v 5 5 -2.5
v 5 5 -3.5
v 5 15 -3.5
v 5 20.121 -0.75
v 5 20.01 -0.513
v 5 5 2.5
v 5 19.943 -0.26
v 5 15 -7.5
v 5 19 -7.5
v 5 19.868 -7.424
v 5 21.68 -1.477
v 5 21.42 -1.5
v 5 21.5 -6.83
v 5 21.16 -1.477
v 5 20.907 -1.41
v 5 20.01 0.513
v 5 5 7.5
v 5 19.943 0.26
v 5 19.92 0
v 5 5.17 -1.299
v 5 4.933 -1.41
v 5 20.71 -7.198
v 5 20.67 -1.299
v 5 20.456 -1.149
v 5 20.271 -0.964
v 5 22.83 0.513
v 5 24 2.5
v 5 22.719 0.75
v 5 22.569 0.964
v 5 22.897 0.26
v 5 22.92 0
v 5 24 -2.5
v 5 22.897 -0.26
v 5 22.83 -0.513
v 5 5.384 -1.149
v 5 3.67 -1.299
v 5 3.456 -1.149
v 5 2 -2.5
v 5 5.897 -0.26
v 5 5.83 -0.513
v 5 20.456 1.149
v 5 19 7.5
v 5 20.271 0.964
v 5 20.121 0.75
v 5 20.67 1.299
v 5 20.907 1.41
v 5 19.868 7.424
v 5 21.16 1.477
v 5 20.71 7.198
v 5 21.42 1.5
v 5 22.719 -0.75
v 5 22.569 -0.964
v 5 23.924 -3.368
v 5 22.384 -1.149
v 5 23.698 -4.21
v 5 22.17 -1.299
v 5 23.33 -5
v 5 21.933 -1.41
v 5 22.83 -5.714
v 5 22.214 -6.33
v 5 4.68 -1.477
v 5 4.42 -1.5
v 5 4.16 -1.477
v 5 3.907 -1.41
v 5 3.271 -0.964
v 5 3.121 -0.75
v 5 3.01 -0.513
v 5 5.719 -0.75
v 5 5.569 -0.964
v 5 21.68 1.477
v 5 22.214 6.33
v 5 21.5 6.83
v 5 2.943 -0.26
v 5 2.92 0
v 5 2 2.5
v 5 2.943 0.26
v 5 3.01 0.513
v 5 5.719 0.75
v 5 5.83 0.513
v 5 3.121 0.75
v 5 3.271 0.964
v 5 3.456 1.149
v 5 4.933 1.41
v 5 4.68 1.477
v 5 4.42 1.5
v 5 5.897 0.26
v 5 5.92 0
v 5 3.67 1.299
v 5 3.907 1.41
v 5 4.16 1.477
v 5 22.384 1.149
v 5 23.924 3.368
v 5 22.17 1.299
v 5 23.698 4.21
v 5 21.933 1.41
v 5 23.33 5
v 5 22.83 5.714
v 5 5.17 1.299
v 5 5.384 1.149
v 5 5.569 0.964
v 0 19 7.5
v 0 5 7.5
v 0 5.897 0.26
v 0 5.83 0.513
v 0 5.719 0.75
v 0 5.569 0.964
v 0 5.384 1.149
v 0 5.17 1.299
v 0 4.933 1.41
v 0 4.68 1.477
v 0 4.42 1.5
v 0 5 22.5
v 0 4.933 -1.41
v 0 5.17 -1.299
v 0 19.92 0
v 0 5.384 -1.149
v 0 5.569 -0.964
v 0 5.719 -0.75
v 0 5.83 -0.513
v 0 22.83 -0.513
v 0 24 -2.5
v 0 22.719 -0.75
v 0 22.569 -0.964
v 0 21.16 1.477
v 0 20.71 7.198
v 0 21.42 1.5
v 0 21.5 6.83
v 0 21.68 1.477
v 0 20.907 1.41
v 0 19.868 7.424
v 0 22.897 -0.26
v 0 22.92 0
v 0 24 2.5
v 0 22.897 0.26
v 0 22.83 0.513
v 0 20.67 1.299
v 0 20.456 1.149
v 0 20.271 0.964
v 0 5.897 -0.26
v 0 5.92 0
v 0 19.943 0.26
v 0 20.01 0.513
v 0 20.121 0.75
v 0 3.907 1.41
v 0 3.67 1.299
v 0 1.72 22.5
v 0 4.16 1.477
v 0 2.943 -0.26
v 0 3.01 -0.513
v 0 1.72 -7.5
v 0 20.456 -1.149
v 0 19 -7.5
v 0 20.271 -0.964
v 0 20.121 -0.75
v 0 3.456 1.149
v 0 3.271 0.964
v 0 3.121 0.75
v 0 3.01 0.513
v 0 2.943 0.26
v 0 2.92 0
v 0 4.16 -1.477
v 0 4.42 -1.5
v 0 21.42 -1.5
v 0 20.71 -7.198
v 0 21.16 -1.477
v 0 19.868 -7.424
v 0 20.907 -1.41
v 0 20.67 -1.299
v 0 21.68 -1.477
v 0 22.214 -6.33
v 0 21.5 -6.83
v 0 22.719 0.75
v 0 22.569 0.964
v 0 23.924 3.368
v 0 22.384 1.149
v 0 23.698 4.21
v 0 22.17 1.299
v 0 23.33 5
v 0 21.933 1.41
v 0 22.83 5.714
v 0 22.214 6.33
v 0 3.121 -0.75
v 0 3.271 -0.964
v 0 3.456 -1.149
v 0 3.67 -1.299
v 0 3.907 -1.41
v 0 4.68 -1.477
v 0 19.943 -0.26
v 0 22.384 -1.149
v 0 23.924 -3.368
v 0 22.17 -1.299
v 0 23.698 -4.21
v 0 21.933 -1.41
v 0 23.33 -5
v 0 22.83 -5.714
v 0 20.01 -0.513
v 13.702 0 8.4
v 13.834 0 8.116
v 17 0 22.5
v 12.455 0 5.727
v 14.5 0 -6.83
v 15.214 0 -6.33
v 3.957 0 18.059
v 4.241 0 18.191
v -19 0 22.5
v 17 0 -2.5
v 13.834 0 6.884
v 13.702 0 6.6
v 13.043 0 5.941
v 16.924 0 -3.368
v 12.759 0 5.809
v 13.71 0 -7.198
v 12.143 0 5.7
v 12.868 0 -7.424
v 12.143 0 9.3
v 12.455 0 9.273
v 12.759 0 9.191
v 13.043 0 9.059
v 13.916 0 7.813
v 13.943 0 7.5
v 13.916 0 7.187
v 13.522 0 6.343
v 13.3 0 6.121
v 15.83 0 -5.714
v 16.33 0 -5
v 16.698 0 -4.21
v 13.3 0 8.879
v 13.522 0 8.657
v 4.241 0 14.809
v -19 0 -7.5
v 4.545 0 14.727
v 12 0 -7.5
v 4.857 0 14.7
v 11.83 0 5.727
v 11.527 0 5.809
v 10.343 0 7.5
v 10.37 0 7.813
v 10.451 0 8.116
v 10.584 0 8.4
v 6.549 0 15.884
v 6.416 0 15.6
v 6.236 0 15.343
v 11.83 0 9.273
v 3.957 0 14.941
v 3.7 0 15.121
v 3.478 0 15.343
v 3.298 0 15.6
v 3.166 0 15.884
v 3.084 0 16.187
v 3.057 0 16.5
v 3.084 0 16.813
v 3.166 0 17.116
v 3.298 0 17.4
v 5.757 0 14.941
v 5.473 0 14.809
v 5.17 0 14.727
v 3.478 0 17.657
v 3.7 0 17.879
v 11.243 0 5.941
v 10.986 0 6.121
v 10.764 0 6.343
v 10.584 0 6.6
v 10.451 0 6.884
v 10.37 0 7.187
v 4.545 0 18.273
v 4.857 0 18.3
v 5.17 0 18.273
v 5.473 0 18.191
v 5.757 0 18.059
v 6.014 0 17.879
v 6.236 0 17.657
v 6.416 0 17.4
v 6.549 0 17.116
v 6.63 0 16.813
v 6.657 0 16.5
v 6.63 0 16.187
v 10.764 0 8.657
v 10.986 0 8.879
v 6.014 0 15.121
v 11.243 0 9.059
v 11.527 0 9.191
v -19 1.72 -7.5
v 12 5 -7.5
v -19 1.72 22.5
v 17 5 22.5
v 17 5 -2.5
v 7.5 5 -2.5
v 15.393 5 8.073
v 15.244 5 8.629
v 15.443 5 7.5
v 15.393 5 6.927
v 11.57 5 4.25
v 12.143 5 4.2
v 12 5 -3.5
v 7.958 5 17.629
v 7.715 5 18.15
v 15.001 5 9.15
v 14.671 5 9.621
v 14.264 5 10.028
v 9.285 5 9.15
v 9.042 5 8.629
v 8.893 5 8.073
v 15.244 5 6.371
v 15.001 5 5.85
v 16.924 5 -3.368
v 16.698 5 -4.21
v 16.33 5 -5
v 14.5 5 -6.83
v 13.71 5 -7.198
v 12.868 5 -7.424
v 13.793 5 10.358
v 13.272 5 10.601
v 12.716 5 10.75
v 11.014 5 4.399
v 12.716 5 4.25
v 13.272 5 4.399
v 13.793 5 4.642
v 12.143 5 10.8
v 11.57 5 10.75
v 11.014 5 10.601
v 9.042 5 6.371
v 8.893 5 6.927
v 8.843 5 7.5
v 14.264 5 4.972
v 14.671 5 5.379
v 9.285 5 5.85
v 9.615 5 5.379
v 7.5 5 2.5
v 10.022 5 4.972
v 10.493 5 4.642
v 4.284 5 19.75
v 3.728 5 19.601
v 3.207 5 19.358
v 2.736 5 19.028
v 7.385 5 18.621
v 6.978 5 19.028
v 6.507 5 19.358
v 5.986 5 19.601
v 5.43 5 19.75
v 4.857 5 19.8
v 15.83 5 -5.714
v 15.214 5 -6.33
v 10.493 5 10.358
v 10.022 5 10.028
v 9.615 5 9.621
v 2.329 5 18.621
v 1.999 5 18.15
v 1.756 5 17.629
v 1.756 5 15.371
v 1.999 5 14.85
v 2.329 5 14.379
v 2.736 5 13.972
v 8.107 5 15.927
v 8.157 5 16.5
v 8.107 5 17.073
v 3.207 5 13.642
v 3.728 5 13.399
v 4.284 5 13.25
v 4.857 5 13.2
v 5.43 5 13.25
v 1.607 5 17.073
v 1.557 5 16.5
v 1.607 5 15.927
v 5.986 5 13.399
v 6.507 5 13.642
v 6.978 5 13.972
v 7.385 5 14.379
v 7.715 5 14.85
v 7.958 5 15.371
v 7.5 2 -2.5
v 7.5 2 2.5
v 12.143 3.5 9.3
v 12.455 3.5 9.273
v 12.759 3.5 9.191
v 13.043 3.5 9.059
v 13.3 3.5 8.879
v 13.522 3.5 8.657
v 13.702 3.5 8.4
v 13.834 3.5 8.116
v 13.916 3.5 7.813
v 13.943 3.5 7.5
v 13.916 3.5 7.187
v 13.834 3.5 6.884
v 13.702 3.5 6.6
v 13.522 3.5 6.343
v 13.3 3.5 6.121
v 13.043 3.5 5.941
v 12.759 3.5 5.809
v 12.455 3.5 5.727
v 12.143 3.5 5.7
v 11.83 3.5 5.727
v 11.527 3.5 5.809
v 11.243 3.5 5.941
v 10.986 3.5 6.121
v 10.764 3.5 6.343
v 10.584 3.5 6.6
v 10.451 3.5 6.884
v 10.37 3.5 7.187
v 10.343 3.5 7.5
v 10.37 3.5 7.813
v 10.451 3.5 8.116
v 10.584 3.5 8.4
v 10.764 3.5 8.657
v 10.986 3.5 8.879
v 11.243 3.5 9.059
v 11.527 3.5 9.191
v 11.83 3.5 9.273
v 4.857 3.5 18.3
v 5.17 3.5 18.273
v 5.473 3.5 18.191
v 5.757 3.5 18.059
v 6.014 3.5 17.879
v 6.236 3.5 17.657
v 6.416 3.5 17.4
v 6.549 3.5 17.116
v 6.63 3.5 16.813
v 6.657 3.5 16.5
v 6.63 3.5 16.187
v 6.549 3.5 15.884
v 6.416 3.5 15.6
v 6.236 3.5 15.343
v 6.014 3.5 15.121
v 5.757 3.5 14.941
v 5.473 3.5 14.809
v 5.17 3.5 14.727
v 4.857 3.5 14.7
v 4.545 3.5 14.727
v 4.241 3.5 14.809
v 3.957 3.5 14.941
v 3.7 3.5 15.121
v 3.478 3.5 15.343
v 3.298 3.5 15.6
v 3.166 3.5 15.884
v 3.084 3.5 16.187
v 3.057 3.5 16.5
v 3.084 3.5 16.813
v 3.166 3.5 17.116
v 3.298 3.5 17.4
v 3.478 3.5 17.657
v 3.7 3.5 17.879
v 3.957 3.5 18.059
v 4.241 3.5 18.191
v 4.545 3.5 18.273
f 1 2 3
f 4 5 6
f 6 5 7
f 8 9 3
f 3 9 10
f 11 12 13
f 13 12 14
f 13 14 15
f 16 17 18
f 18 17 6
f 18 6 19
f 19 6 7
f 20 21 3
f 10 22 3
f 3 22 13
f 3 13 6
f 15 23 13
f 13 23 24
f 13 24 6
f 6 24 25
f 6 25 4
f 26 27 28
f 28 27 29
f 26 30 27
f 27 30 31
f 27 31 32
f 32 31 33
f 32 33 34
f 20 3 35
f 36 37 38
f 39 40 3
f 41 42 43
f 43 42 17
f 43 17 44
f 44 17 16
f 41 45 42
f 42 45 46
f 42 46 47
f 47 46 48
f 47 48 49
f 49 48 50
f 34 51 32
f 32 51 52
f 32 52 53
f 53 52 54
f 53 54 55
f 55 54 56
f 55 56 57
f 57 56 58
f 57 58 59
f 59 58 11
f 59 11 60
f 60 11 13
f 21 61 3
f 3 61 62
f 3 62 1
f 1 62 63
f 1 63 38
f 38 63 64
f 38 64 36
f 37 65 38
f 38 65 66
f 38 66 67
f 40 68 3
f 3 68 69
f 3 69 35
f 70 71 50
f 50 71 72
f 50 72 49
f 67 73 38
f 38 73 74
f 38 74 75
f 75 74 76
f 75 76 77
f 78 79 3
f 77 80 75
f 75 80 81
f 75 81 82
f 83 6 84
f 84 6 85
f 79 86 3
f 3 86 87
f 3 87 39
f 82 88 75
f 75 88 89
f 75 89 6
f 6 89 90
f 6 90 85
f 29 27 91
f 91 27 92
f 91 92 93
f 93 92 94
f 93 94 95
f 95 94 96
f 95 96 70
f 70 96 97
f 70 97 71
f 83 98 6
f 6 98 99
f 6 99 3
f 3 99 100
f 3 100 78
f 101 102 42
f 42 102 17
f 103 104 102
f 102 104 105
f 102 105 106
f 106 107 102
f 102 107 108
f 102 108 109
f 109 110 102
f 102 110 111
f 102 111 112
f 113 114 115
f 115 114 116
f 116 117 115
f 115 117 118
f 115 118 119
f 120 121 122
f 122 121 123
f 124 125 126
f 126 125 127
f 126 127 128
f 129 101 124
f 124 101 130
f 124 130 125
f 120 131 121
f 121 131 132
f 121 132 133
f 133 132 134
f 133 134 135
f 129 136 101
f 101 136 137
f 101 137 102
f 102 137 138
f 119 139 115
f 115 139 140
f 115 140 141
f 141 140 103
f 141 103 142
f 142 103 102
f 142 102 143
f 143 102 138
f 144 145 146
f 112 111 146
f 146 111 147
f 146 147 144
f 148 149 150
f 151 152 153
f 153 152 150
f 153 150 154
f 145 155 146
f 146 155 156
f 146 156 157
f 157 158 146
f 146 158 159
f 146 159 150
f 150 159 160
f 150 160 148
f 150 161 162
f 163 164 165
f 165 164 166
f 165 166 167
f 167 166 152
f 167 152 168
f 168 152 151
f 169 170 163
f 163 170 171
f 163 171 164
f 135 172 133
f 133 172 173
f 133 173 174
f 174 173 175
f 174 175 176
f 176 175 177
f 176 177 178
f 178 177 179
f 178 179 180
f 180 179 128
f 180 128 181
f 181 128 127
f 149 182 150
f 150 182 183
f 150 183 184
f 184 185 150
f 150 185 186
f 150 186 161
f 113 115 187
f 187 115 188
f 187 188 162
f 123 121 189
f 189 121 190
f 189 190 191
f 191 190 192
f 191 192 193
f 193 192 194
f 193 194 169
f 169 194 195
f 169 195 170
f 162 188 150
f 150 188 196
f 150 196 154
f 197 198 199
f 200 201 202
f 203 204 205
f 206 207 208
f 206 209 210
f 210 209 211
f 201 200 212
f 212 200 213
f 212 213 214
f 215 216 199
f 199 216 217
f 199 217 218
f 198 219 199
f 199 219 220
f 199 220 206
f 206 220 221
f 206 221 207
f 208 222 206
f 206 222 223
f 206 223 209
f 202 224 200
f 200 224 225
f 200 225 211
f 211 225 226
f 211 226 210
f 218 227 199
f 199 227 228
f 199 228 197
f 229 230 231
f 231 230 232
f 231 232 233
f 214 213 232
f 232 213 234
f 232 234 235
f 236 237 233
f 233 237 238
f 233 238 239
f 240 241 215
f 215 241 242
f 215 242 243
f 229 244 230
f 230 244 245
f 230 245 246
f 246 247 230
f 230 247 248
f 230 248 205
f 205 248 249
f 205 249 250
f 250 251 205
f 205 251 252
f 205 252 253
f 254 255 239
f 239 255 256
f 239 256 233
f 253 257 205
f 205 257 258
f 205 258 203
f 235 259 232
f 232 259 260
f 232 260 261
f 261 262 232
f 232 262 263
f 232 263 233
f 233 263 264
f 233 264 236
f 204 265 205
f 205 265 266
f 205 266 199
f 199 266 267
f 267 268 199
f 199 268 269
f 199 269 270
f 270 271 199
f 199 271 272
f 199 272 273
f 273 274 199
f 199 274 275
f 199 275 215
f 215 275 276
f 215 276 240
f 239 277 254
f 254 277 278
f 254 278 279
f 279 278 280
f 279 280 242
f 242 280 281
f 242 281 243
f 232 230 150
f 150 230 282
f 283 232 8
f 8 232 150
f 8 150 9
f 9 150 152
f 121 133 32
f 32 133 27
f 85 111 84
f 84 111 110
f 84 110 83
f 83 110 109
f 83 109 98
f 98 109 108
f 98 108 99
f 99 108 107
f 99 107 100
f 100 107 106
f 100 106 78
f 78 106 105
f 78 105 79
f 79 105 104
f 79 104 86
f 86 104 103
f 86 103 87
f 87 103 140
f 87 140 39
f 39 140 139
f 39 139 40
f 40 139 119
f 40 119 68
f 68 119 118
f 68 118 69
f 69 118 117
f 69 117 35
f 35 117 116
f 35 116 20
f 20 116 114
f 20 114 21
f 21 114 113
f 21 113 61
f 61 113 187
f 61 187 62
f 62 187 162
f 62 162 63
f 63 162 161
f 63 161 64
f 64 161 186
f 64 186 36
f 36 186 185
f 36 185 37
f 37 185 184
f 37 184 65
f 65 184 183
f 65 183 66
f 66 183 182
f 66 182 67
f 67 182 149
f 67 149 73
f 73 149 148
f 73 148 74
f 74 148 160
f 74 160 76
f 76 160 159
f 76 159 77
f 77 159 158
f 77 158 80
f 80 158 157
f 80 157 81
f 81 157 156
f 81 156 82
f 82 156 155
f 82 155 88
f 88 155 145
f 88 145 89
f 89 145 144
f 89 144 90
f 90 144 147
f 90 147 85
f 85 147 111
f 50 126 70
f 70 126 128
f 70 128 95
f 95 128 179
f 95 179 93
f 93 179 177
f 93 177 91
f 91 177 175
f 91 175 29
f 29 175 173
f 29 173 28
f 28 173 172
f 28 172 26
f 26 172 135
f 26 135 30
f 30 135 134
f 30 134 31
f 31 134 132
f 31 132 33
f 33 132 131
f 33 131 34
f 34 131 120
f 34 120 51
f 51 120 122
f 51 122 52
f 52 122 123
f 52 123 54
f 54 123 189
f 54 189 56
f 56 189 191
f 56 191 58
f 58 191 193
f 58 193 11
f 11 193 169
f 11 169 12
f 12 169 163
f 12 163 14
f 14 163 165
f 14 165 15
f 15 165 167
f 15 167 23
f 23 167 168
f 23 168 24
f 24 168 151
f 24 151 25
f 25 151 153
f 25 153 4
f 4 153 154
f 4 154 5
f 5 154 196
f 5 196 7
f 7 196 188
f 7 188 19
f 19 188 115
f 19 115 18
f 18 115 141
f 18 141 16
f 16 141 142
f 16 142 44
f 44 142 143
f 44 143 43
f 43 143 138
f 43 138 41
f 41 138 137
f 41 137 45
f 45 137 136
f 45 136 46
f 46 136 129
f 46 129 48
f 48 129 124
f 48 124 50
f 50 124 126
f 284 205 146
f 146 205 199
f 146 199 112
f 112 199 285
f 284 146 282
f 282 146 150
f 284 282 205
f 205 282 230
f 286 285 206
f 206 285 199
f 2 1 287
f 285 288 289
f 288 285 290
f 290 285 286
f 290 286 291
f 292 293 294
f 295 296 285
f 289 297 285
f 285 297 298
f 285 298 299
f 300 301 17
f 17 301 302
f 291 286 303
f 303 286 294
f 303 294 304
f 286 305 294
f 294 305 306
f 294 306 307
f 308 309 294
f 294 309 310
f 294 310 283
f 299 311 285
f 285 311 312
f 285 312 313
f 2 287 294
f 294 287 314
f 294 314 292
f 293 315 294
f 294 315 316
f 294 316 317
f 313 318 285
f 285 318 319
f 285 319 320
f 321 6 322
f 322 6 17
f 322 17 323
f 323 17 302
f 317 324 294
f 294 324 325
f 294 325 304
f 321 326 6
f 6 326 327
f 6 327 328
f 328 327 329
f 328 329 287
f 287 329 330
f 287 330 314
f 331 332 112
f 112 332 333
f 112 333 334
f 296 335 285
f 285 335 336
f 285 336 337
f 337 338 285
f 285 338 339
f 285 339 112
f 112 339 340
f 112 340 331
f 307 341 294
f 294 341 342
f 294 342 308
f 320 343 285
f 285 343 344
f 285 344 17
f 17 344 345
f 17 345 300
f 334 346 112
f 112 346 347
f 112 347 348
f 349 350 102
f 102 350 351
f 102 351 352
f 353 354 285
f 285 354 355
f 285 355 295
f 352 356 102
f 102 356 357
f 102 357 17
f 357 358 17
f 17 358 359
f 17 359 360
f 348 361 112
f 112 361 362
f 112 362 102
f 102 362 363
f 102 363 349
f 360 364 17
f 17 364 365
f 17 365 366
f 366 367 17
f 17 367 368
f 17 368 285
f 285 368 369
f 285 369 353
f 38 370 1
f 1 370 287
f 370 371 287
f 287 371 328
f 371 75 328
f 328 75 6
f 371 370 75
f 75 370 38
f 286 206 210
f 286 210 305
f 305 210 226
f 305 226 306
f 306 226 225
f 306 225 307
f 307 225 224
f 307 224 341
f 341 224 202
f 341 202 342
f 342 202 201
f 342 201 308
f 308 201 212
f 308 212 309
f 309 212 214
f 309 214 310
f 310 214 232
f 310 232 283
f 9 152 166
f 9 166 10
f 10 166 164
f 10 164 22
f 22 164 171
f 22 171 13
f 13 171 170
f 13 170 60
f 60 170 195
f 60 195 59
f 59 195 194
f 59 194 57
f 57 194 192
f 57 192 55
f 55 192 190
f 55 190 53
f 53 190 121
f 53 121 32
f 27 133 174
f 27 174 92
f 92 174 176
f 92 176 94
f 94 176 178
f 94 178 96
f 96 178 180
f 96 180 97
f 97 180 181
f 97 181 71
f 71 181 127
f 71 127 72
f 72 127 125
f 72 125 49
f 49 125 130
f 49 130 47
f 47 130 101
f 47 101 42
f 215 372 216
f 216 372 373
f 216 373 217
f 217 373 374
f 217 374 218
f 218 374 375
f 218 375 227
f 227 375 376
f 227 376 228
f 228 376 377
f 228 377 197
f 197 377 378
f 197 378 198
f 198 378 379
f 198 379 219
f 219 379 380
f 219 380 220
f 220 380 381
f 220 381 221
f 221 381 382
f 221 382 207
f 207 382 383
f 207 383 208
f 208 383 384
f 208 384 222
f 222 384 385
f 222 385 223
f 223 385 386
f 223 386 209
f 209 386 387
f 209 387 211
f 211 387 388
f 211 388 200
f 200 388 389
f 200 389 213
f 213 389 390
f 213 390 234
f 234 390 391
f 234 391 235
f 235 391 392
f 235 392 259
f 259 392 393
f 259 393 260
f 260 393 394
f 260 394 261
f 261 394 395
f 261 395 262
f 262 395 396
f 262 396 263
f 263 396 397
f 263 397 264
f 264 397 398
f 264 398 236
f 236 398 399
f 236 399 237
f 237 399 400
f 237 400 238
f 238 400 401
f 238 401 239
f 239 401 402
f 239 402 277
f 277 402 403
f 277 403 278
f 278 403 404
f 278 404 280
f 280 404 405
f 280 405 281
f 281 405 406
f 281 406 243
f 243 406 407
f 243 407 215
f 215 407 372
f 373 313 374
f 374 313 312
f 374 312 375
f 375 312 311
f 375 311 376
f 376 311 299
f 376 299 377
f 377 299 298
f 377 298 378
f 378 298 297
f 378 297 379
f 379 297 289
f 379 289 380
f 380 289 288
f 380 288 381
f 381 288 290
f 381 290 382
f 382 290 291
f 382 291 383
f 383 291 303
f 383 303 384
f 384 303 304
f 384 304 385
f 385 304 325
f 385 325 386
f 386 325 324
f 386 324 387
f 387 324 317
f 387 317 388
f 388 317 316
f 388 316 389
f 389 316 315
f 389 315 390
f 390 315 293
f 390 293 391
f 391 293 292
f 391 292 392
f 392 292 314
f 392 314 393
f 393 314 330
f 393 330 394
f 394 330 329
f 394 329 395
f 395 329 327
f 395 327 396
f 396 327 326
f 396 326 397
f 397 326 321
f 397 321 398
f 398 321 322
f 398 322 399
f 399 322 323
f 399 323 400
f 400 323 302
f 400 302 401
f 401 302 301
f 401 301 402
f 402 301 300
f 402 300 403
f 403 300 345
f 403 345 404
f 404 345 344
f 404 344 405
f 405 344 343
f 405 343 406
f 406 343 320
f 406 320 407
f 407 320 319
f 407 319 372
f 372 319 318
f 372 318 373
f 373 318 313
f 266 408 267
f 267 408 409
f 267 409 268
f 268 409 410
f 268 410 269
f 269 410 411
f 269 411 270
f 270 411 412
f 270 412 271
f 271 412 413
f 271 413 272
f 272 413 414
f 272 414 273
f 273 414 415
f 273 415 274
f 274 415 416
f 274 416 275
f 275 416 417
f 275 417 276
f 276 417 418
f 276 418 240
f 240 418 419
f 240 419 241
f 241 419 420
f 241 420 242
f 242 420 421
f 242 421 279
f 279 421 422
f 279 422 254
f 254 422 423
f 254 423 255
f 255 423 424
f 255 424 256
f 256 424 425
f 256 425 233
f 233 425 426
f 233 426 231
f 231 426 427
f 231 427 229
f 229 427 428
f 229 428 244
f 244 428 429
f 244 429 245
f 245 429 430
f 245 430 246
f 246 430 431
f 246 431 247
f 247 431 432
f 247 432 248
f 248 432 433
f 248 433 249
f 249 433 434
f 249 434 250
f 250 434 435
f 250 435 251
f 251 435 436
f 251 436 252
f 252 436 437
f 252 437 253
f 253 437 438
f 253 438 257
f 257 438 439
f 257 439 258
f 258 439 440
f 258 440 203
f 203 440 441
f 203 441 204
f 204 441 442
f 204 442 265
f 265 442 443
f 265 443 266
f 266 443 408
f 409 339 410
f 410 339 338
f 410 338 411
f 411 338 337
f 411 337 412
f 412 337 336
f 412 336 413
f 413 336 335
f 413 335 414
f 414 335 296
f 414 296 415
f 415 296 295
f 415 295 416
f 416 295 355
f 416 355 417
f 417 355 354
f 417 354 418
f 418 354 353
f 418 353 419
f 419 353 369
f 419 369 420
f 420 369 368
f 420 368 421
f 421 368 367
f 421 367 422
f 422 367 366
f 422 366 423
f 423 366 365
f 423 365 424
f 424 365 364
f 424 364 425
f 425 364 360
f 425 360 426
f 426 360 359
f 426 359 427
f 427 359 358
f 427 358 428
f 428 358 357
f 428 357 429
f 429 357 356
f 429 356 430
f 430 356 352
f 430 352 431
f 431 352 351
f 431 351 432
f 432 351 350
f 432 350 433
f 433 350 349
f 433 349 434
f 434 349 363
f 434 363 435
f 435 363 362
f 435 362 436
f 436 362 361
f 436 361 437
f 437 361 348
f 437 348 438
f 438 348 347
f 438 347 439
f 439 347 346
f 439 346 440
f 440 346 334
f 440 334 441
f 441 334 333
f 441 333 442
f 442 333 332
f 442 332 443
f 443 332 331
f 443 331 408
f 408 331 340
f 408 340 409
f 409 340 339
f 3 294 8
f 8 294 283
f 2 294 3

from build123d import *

# Parameters (mm, degrees)
SKETCH_1_W                = 15
SKETCH_1_H                = 24
SKETCH_1_R                = 1.5
EXTRUDE_1_DEPTH           = 5
SKETCH_2_W                = 30
SKETCH_2_H                = 1.720004632
EXTRUDE_2_DEPTH           = 19
EXTRUDE_5_DEPTH           = 5
SKETCH_7_W                = 2.5
SKETCH_7_H                = 5
CUT_EXTRUDE_1_DEPTH       = 3
FILLET_1_R                = 5
HOLE_WIZARD_1_D           = 3.6
HOLE_WIZARD_1_CSINK_D     = 6.6
HOLE_WIZARD_1_CSINK_ANGLE = 90
RIB_1_REACH               = 44.86
SKETCH_10_WALL_W          = 99.927031582
SKETCH_10_WALL_H          = 4


with BuildPart() as part:
    # 草图1 → 凸台-拉伸1 (new body)
    with BuildSketch(Plane(origin=(0, 0, 0), x_dir=(0, 0, -1), z_dir=(1, 0, 0))):
        with Locations((0, 12)):
            Rectangle(SKETCH_1_W, SKETCH_1_H)
        with Locations((0, 4.420004632)):
            Circle(SKETCH_1_R, mode=Mode.SUBTRACT)
        with Locations((0, 21.420004632)):
            Circle(SKETCH_1_R, mode=Mode.SUBTRACT)
    extrude(amount=EXTRUDE_1_DEPTH)

    # 草图2 → 凸台-拉伸2 (add)
    with BuildSketch(Plane.ZY):
        with Locations((7.5, 0.860002316)):
            Rectangle(SKETCH_2_W, SKETCH_2_H)
    extrude(amount=EXTRUDE_2_DEPTH)

    # 草图4 → 凸台-拉伸5 (add)
    with BuildSketch(Plane(origin=(0, 0, 0), x_dir=(1, 0, 0), z_dir=(0, 1, 0))):
        Polygon((5, 7.5), (17, 7.5), (17, -22.5), (0, -22.5), (0, -7.5), (5, -7.5), align=None)
    extrude(amount=EXTRUDE_5_DEPTH)

    # 草图7 → 切除-拉伸1 (cut)
    with BuildSketch(Plane(origin=(0, 5, 0), x_dir=(1, 0, 0), z_dir=(0, 1, 0))):
        with Locations((6.25, 0)):
            Rectangle(SKETCH_7_W, SKETCH_7_H)
    extrude(amount=-CUT_EXTRUDE_1_DEPTH, mode=Mode.SUBTRACT)

    # 圆角1
    fillet_1_edges = [part.edges().sort_by_distance(p)[0] for p in [
        (17, 2.5, -7.5),
        (2.5, 24, 7.5),
        (2.5, 24, -7.5),
    ]]
    fillet(fillet_1_edges, radius=FILLET_1_R)

    # 打孔尺寸(%根据十字)槽半沉头木螺钉的类型1 (through all)
    with Locations(Plane(origin=(0, 5, 0), x_dir=(1, 0, 0), z_dir=(0, 1, 0))):
        with Locations((4.857142857, -16.5), (12.142857143, -7.5)):
            CounterSinkHole(HOLE_WIZARD_1_D / 2, HOLE_WIZARD_1_CSINK_D / 2, counter_sink_angle=HOLE_WIZARD_1_CSINK_ANGLE)

    # 草图10 wall → 筋1 (add, up to next)
    with BuildSketch(Plane(origin=(8.5, 10, -7.5), x_dir=(-0.573462344363, 0.819231920519, 0), z_dir=(0.819231920519, 0.573462344363, 0)), mode=Mode.PRIVATE) as rib_1_sk1:
        with Locations((0, 2)):
            Rectangle(SKETCH_10_WALL_W, SKETCH_10_WALL_H)
    rib_1_tool1 = extrude(rib_1_sk1.sketch, amount=-RIB_1_REACH, mode=Mode.PRIVATE) - part.part
    add(rib_1_tool1.solids().sort_by_distance((8.5, 10, -7.5))[0])


solid = part.part
